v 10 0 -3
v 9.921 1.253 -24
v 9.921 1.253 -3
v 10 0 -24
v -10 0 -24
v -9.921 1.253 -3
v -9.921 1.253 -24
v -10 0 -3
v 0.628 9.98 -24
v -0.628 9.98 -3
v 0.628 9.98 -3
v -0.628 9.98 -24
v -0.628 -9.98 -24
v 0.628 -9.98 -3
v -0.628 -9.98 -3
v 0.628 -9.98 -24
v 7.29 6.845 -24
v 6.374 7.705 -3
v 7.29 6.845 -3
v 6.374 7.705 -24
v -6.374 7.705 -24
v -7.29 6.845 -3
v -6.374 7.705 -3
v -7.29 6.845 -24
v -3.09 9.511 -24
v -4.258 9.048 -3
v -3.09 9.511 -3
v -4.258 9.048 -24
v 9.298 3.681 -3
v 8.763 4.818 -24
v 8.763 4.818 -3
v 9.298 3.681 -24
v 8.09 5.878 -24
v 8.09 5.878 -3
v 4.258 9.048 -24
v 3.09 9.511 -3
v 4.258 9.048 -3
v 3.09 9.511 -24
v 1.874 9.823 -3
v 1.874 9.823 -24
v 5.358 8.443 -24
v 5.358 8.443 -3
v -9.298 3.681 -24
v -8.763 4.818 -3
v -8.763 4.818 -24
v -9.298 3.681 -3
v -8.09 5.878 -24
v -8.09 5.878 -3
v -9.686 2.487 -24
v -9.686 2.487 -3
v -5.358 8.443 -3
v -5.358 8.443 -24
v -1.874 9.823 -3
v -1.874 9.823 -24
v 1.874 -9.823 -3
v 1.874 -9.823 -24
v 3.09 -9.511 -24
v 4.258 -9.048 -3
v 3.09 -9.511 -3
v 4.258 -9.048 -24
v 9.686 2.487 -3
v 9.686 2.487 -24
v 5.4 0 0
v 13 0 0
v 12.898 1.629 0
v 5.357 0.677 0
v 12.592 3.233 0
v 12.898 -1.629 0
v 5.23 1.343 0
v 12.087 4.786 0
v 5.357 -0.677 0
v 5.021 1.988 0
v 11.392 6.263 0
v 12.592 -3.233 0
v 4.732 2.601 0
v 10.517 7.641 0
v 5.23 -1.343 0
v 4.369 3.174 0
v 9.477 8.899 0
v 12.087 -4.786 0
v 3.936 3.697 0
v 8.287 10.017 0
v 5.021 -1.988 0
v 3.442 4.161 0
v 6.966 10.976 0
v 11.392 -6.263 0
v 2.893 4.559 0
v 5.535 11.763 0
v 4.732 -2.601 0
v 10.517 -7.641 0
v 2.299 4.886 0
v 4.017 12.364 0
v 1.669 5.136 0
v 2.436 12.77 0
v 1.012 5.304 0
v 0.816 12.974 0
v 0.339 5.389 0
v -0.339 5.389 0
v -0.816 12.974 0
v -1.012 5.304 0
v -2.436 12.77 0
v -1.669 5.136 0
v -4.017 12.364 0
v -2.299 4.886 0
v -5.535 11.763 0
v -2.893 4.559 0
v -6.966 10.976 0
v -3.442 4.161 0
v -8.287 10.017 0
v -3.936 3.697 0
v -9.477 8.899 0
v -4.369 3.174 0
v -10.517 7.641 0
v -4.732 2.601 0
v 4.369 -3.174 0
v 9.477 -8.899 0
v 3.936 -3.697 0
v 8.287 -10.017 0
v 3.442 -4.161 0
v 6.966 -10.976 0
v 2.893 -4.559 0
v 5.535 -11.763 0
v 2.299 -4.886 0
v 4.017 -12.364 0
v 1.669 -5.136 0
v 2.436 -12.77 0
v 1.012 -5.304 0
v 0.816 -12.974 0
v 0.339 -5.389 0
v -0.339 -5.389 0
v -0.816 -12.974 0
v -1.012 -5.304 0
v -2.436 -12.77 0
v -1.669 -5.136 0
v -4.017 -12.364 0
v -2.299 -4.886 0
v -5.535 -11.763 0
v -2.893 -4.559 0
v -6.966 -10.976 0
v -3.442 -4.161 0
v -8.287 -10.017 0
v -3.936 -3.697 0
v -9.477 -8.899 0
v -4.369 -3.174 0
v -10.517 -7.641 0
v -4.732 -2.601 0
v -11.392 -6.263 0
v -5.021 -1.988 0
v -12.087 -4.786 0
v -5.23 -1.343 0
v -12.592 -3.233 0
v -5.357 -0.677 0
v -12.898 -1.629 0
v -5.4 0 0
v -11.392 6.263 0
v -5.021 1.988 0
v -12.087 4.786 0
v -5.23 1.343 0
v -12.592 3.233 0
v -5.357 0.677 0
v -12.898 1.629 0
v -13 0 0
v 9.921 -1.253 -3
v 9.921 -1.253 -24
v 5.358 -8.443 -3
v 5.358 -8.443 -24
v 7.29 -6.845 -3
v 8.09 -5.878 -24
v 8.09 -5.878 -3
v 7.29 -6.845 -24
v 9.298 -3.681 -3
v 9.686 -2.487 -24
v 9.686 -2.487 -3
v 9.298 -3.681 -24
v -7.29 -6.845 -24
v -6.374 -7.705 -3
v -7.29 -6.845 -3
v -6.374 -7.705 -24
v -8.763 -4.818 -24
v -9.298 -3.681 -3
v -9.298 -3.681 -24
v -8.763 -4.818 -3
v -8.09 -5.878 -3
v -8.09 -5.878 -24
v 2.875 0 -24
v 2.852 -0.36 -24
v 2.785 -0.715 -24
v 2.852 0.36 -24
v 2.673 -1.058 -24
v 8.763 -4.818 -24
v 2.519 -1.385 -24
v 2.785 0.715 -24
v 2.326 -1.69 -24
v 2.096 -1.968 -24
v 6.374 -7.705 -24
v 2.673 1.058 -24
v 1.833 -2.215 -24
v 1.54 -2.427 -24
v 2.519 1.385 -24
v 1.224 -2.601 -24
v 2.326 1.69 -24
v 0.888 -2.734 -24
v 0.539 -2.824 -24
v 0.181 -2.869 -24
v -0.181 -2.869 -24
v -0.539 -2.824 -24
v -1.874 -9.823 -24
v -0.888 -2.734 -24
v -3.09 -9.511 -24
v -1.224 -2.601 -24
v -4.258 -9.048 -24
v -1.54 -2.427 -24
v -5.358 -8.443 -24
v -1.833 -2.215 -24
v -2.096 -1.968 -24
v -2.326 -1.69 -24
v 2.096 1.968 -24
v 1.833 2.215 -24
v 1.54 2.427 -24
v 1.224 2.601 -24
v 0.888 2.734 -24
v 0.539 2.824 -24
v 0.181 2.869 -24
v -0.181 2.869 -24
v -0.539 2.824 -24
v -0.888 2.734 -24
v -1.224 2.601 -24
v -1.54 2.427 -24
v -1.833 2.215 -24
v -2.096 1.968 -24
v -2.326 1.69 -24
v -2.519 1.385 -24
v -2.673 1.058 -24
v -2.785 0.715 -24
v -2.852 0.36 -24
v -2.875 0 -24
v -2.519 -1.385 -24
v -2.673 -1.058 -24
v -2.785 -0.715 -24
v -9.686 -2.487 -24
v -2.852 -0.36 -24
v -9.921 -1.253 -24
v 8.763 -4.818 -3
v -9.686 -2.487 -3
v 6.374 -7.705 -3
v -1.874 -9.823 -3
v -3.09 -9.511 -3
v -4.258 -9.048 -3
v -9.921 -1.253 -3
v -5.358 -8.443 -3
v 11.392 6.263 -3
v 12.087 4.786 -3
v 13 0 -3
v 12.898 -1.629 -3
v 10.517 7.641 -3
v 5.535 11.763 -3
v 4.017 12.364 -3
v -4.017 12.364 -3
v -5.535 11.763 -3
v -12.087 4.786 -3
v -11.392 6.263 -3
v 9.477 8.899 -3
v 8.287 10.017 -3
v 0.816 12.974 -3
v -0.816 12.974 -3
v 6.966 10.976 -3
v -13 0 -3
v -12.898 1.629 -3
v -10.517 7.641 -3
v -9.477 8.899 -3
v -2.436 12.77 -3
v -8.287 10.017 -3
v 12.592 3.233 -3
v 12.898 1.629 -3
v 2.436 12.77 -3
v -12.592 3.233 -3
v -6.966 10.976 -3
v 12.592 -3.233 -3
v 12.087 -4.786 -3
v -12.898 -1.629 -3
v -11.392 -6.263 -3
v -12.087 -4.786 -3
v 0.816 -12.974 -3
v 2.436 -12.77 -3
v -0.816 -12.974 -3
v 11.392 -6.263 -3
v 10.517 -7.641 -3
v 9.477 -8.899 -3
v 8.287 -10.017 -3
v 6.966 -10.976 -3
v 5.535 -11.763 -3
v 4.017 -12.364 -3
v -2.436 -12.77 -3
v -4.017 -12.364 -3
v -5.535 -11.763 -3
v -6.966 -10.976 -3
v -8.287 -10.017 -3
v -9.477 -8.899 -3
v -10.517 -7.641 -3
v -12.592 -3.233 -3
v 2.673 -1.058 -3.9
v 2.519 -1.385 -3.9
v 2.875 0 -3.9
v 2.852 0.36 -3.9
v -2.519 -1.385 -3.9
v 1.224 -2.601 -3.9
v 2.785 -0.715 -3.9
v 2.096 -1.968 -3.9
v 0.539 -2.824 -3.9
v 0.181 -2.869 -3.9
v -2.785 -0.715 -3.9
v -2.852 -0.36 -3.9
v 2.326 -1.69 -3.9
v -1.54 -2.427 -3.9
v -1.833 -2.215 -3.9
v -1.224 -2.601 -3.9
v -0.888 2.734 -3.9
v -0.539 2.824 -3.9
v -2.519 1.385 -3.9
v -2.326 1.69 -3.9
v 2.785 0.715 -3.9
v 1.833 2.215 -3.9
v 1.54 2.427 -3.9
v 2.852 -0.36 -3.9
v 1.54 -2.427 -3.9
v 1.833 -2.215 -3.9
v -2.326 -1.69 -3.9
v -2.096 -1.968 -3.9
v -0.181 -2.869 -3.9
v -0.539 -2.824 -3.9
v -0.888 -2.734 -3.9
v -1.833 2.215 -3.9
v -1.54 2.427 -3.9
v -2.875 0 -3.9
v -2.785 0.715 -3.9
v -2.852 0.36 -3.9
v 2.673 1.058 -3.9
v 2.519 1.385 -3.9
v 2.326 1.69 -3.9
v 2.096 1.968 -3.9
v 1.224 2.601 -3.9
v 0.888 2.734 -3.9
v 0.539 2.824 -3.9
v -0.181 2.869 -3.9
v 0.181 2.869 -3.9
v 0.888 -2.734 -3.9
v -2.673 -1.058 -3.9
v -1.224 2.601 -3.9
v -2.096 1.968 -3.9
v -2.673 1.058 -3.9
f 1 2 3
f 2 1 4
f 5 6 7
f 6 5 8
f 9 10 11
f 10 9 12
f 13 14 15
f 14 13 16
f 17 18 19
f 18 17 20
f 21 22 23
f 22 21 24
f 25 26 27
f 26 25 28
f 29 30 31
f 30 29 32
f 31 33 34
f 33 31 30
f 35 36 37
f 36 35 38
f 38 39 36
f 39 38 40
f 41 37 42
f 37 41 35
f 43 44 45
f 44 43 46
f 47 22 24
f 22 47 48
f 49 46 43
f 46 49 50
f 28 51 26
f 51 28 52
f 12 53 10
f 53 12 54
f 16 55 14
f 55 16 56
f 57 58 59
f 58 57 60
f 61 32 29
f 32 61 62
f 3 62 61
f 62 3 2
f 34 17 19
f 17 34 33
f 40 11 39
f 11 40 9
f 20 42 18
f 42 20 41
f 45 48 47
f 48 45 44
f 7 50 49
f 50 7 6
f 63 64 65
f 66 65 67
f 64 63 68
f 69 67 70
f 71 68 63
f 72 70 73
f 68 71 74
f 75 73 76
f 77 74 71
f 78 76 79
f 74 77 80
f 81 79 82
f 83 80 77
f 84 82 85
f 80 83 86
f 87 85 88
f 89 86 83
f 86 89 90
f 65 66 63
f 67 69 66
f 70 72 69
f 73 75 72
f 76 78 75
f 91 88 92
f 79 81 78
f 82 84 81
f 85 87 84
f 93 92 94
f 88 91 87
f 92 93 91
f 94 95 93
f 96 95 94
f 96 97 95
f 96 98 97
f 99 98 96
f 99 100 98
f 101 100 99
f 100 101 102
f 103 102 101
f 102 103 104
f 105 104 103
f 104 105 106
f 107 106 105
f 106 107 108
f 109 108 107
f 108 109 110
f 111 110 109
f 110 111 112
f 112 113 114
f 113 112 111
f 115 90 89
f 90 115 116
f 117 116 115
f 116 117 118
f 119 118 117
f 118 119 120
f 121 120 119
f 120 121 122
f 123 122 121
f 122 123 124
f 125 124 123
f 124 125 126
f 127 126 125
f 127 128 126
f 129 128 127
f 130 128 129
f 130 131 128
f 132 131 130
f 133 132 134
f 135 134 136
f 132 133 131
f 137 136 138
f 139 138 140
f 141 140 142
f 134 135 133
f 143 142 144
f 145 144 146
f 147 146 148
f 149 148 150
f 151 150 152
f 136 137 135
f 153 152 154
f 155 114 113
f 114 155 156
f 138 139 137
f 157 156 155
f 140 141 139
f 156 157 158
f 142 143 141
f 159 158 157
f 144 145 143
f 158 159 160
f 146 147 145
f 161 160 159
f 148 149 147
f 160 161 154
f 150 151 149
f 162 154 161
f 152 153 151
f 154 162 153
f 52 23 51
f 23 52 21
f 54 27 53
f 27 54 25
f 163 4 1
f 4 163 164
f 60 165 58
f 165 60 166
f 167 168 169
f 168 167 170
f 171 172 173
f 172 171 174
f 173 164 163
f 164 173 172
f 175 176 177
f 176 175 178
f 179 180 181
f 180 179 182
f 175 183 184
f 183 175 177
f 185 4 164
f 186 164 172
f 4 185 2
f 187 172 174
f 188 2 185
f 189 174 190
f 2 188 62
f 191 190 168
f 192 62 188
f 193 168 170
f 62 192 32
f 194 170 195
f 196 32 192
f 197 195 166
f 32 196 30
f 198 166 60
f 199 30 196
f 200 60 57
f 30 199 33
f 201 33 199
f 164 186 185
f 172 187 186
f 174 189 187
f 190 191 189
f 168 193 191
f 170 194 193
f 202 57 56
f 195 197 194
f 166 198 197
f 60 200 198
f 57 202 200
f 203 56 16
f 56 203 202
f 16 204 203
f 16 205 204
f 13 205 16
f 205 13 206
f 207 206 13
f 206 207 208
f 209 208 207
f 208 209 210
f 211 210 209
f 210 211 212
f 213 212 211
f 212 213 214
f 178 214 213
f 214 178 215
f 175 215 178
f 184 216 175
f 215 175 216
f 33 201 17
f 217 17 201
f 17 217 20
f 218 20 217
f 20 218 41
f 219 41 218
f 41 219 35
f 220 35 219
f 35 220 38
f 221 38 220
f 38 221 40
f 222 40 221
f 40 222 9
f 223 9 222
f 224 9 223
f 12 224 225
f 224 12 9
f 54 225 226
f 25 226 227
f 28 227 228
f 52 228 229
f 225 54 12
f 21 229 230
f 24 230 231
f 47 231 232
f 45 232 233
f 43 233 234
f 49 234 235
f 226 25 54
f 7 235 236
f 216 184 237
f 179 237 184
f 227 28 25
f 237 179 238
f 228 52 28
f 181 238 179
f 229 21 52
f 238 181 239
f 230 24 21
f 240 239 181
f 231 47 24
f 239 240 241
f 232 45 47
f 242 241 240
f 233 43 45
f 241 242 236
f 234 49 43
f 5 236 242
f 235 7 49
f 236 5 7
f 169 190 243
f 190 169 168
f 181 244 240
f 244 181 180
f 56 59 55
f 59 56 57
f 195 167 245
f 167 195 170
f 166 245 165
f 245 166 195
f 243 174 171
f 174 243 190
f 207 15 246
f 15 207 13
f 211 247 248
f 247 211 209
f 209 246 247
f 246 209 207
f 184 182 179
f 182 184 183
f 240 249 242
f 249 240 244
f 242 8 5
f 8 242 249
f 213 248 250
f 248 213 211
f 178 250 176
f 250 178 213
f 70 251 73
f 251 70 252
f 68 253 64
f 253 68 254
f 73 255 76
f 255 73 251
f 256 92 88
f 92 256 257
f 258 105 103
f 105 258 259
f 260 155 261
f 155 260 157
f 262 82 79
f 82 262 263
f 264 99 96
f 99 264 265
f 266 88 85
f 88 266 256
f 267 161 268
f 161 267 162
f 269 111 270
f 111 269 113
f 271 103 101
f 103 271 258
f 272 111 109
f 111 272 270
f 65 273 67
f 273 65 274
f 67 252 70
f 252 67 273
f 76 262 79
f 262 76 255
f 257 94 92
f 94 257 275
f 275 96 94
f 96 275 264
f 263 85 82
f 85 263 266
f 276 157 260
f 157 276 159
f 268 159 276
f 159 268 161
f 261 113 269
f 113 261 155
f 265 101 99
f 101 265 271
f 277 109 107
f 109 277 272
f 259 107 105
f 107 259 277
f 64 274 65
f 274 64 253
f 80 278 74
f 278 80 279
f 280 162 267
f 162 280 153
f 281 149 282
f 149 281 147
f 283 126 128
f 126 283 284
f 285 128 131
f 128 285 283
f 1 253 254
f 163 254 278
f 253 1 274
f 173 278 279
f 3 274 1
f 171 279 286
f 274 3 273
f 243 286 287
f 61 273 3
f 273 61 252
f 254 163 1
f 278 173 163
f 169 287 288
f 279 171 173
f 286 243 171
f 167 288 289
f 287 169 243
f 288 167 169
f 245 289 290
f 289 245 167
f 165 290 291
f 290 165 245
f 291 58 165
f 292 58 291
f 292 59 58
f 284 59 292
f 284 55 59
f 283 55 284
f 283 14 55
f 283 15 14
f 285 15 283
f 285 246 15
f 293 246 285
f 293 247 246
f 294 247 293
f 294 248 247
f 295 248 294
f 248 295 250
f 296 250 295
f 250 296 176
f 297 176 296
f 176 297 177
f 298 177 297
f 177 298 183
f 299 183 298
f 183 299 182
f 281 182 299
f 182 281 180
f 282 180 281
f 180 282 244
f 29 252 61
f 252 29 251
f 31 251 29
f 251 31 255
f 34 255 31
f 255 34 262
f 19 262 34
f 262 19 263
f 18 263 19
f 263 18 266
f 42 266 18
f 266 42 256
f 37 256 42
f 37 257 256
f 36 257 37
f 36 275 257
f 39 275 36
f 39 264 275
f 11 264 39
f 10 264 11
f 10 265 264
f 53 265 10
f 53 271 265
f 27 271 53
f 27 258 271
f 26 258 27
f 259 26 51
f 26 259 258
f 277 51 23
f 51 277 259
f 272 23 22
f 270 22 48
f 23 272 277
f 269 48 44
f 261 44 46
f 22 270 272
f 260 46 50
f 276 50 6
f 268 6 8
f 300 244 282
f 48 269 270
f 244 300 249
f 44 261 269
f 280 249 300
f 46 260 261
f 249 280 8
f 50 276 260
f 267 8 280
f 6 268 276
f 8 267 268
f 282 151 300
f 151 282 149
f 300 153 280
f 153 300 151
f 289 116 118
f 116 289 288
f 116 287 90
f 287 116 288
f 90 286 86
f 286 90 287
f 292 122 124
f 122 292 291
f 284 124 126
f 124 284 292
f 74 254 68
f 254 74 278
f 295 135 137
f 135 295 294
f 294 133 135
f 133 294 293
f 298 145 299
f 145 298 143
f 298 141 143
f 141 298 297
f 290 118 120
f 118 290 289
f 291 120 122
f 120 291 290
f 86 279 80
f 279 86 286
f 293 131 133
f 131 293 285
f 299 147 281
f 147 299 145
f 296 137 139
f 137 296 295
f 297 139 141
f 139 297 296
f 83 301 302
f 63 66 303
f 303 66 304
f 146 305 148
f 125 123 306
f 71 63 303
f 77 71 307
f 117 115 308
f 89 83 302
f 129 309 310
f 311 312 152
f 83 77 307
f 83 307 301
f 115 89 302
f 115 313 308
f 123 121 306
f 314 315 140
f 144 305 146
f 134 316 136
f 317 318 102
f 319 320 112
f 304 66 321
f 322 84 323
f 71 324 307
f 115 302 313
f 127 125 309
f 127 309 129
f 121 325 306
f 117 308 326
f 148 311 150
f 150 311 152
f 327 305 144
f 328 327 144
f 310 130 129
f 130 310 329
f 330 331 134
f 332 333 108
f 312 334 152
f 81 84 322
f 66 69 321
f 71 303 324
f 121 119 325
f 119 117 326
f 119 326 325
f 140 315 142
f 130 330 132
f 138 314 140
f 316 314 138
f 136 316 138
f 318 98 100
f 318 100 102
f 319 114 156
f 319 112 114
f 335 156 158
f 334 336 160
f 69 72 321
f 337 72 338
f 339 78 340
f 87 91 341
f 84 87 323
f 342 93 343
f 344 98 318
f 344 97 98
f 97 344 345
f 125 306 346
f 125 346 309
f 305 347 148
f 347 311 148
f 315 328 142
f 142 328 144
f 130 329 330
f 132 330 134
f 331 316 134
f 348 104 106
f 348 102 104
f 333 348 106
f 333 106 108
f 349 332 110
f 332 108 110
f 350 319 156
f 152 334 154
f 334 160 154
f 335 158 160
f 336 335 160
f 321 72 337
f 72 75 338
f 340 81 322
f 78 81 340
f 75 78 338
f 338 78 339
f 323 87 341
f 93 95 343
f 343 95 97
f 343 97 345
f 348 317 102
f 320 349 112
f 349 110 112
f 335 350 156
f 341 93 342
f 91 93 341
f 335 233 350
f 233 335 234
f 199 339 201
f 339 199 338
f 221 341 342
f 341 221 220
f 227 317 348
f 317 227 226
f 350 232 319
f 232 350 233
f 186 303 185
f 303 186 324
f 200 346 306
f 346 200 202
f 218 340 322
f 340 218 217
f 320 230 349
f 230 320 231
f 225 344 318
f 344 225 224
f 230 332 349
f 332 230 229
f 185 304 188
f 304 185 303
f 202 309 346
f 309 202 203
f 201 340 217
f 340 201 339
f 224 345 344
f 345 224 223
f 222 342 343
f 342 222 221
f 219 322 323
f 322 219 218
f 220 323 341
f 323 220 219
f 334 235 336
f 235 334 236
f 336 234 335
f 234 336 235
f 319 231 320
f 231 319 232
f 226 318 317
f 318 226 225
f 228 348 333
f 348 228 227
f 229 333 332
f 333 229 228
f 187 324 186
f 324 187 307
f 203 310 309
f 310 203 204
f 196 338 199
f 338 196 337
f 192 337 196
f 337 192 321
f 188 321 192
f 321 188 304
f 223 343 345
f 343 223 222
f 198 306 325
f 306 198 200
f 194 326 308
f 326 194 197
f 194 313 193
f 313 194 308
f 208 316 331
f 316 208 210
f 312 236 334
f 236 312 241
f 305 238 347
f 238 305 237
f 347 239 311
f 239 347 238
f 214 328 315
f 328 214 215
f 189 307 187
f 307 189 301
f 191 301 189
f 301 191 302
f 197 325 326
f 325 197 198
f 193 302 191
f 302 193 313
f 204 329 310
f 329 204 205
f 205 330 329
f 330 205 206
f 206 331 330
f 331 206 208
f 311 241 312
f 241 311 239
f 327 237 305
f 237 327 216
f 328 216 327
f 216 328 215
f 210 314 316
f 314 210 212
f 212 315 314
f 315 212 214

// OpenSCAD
$fn = 50;


difference() {
	union() {
		translate(v = [0, 0, -24.0000000000]) {
			cylinder(h = 24, r = 10.0000000000);
		}
		translate(v = [0, 0, -3.0000000000]) {
			cylinder(h = 3, r = 13.0000000000);
		}
	}
	union() {
		translate(v = [0, 0, 0]) {
			rotate(a = [0, 0, 0]) {
				difference() {
					union() {
						#translate(v = [0, 0, -24.0000000000]) {
							cylinder(h = 24, r = 2.6000000000);
						}
						#translate(v = [0, 0, -3.9000000000]) {
							cylinder(h = 3.9000000000, r = 10.0000000000, r1 = 2.8750000000, r2 = 5.4000000000);
						}
						#translate(v = [0, 0, -24.0000000000]) {
							cylinder(h = 24, r = 2.8750000000);
						}
						#translate(v = [0, 0, -24.0000000000]) {
							cylinder(h = 24, r = 2.6000000000);
						}
					}
					union();
				}
			}
		}
	}
}
